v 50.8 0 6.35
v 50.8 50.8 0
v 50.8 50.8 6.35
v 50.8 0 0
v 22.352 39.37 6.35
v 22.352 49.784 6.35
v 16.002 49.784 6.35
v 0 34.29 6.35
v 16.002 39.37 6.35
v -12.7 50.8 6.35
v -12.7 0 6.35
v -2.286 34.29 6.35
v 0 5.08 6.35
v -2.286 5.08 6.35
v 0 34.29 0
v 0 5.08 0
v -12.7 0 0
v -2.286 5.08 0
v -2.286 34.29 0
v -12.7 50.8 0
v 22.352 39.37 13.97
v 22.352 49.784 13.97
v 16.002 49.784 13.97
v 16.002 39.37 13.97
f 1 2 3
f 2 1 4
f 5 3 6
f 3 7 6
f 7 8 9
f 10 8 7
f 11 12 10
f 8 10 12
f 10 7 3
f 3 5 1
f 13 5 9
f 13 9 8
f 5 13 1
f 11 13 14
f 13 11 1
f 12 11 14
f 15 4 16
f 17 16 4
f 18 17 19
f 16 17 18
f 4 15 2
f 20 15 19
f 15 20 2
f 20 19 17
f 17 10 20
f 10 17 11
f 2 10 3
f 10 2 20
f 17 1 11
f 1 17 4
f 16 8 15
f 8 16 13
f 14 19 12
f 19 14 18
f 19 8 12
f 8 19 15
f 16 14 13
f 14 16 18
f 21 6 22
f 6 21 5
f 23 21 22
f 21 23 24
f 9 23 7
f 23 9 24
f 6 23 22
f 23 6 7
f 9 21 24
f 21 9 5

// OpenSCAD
// file: config.scad
// 3D printers are metric, but I'm working in inches here...
function inch(n) = 25.4 * n; // convert inches to mm

/*
 * BEGIN CONFIGURATION
 */

stop_bump_height = inch(0.25);

tape_slot_length = inch(0.09);
tape_slot_width = inch(1.15);
slot_tape_width = inch(1.15);

tape_post_height = inch(0.3);
tape_post_width = inch(0.41);
tape_post_length = inch(0.25);
tape_post_x_start = inch(0.63);
post_tape_width = inch(0.75);
tape_post_to_slot_gap = inch(0.2);
tape_post_inset = (post_tape_width - tape_post_width) / 2;

// plate - the base of the whole thing
plate_thickness = inch(0.25);
plate_length = inch(8);
plate_width = tape_slot_width + (tape_post_width * 2) + (tape_post_to_slot_gap * 2) + (tape_post_inset * 2);
plate_tab_overhang = inch(0.5);
hinge_tab_width = plate_width / 5;
hinge_gap = 0.05;

// arm - the part that folds out 90°
arm_thickness = plate_thickness;
arm_width = plate_width;
arm_length = inch(3.5);

/*
 * END CONFIGURATION
 */

// Calculated values
// main file
include <config.scad>

test_length = inch(2.5);
test_width = inch(2);

tape_y_offset = inch(0.2);

difference() {
    translate([inch(-0.5), 0, 0]) {
        cube([test_length, test_width, plate_thickness]);
    }
    // tape hole
    translate([-1 * tape_slot_length, tape_y_offset, -0.1]) {
        cube([tape_slot_length, tape_slot_width, plate_thickness + 0.4]);
    }
}
// block for long tape
translate([tape_post_x_start, tape_y_offset + tape_slot_width + inch(0.2), 0]) {
    cube([tape_post_length, tape_post_width, plate_thickness + tape_post_height]);
}
